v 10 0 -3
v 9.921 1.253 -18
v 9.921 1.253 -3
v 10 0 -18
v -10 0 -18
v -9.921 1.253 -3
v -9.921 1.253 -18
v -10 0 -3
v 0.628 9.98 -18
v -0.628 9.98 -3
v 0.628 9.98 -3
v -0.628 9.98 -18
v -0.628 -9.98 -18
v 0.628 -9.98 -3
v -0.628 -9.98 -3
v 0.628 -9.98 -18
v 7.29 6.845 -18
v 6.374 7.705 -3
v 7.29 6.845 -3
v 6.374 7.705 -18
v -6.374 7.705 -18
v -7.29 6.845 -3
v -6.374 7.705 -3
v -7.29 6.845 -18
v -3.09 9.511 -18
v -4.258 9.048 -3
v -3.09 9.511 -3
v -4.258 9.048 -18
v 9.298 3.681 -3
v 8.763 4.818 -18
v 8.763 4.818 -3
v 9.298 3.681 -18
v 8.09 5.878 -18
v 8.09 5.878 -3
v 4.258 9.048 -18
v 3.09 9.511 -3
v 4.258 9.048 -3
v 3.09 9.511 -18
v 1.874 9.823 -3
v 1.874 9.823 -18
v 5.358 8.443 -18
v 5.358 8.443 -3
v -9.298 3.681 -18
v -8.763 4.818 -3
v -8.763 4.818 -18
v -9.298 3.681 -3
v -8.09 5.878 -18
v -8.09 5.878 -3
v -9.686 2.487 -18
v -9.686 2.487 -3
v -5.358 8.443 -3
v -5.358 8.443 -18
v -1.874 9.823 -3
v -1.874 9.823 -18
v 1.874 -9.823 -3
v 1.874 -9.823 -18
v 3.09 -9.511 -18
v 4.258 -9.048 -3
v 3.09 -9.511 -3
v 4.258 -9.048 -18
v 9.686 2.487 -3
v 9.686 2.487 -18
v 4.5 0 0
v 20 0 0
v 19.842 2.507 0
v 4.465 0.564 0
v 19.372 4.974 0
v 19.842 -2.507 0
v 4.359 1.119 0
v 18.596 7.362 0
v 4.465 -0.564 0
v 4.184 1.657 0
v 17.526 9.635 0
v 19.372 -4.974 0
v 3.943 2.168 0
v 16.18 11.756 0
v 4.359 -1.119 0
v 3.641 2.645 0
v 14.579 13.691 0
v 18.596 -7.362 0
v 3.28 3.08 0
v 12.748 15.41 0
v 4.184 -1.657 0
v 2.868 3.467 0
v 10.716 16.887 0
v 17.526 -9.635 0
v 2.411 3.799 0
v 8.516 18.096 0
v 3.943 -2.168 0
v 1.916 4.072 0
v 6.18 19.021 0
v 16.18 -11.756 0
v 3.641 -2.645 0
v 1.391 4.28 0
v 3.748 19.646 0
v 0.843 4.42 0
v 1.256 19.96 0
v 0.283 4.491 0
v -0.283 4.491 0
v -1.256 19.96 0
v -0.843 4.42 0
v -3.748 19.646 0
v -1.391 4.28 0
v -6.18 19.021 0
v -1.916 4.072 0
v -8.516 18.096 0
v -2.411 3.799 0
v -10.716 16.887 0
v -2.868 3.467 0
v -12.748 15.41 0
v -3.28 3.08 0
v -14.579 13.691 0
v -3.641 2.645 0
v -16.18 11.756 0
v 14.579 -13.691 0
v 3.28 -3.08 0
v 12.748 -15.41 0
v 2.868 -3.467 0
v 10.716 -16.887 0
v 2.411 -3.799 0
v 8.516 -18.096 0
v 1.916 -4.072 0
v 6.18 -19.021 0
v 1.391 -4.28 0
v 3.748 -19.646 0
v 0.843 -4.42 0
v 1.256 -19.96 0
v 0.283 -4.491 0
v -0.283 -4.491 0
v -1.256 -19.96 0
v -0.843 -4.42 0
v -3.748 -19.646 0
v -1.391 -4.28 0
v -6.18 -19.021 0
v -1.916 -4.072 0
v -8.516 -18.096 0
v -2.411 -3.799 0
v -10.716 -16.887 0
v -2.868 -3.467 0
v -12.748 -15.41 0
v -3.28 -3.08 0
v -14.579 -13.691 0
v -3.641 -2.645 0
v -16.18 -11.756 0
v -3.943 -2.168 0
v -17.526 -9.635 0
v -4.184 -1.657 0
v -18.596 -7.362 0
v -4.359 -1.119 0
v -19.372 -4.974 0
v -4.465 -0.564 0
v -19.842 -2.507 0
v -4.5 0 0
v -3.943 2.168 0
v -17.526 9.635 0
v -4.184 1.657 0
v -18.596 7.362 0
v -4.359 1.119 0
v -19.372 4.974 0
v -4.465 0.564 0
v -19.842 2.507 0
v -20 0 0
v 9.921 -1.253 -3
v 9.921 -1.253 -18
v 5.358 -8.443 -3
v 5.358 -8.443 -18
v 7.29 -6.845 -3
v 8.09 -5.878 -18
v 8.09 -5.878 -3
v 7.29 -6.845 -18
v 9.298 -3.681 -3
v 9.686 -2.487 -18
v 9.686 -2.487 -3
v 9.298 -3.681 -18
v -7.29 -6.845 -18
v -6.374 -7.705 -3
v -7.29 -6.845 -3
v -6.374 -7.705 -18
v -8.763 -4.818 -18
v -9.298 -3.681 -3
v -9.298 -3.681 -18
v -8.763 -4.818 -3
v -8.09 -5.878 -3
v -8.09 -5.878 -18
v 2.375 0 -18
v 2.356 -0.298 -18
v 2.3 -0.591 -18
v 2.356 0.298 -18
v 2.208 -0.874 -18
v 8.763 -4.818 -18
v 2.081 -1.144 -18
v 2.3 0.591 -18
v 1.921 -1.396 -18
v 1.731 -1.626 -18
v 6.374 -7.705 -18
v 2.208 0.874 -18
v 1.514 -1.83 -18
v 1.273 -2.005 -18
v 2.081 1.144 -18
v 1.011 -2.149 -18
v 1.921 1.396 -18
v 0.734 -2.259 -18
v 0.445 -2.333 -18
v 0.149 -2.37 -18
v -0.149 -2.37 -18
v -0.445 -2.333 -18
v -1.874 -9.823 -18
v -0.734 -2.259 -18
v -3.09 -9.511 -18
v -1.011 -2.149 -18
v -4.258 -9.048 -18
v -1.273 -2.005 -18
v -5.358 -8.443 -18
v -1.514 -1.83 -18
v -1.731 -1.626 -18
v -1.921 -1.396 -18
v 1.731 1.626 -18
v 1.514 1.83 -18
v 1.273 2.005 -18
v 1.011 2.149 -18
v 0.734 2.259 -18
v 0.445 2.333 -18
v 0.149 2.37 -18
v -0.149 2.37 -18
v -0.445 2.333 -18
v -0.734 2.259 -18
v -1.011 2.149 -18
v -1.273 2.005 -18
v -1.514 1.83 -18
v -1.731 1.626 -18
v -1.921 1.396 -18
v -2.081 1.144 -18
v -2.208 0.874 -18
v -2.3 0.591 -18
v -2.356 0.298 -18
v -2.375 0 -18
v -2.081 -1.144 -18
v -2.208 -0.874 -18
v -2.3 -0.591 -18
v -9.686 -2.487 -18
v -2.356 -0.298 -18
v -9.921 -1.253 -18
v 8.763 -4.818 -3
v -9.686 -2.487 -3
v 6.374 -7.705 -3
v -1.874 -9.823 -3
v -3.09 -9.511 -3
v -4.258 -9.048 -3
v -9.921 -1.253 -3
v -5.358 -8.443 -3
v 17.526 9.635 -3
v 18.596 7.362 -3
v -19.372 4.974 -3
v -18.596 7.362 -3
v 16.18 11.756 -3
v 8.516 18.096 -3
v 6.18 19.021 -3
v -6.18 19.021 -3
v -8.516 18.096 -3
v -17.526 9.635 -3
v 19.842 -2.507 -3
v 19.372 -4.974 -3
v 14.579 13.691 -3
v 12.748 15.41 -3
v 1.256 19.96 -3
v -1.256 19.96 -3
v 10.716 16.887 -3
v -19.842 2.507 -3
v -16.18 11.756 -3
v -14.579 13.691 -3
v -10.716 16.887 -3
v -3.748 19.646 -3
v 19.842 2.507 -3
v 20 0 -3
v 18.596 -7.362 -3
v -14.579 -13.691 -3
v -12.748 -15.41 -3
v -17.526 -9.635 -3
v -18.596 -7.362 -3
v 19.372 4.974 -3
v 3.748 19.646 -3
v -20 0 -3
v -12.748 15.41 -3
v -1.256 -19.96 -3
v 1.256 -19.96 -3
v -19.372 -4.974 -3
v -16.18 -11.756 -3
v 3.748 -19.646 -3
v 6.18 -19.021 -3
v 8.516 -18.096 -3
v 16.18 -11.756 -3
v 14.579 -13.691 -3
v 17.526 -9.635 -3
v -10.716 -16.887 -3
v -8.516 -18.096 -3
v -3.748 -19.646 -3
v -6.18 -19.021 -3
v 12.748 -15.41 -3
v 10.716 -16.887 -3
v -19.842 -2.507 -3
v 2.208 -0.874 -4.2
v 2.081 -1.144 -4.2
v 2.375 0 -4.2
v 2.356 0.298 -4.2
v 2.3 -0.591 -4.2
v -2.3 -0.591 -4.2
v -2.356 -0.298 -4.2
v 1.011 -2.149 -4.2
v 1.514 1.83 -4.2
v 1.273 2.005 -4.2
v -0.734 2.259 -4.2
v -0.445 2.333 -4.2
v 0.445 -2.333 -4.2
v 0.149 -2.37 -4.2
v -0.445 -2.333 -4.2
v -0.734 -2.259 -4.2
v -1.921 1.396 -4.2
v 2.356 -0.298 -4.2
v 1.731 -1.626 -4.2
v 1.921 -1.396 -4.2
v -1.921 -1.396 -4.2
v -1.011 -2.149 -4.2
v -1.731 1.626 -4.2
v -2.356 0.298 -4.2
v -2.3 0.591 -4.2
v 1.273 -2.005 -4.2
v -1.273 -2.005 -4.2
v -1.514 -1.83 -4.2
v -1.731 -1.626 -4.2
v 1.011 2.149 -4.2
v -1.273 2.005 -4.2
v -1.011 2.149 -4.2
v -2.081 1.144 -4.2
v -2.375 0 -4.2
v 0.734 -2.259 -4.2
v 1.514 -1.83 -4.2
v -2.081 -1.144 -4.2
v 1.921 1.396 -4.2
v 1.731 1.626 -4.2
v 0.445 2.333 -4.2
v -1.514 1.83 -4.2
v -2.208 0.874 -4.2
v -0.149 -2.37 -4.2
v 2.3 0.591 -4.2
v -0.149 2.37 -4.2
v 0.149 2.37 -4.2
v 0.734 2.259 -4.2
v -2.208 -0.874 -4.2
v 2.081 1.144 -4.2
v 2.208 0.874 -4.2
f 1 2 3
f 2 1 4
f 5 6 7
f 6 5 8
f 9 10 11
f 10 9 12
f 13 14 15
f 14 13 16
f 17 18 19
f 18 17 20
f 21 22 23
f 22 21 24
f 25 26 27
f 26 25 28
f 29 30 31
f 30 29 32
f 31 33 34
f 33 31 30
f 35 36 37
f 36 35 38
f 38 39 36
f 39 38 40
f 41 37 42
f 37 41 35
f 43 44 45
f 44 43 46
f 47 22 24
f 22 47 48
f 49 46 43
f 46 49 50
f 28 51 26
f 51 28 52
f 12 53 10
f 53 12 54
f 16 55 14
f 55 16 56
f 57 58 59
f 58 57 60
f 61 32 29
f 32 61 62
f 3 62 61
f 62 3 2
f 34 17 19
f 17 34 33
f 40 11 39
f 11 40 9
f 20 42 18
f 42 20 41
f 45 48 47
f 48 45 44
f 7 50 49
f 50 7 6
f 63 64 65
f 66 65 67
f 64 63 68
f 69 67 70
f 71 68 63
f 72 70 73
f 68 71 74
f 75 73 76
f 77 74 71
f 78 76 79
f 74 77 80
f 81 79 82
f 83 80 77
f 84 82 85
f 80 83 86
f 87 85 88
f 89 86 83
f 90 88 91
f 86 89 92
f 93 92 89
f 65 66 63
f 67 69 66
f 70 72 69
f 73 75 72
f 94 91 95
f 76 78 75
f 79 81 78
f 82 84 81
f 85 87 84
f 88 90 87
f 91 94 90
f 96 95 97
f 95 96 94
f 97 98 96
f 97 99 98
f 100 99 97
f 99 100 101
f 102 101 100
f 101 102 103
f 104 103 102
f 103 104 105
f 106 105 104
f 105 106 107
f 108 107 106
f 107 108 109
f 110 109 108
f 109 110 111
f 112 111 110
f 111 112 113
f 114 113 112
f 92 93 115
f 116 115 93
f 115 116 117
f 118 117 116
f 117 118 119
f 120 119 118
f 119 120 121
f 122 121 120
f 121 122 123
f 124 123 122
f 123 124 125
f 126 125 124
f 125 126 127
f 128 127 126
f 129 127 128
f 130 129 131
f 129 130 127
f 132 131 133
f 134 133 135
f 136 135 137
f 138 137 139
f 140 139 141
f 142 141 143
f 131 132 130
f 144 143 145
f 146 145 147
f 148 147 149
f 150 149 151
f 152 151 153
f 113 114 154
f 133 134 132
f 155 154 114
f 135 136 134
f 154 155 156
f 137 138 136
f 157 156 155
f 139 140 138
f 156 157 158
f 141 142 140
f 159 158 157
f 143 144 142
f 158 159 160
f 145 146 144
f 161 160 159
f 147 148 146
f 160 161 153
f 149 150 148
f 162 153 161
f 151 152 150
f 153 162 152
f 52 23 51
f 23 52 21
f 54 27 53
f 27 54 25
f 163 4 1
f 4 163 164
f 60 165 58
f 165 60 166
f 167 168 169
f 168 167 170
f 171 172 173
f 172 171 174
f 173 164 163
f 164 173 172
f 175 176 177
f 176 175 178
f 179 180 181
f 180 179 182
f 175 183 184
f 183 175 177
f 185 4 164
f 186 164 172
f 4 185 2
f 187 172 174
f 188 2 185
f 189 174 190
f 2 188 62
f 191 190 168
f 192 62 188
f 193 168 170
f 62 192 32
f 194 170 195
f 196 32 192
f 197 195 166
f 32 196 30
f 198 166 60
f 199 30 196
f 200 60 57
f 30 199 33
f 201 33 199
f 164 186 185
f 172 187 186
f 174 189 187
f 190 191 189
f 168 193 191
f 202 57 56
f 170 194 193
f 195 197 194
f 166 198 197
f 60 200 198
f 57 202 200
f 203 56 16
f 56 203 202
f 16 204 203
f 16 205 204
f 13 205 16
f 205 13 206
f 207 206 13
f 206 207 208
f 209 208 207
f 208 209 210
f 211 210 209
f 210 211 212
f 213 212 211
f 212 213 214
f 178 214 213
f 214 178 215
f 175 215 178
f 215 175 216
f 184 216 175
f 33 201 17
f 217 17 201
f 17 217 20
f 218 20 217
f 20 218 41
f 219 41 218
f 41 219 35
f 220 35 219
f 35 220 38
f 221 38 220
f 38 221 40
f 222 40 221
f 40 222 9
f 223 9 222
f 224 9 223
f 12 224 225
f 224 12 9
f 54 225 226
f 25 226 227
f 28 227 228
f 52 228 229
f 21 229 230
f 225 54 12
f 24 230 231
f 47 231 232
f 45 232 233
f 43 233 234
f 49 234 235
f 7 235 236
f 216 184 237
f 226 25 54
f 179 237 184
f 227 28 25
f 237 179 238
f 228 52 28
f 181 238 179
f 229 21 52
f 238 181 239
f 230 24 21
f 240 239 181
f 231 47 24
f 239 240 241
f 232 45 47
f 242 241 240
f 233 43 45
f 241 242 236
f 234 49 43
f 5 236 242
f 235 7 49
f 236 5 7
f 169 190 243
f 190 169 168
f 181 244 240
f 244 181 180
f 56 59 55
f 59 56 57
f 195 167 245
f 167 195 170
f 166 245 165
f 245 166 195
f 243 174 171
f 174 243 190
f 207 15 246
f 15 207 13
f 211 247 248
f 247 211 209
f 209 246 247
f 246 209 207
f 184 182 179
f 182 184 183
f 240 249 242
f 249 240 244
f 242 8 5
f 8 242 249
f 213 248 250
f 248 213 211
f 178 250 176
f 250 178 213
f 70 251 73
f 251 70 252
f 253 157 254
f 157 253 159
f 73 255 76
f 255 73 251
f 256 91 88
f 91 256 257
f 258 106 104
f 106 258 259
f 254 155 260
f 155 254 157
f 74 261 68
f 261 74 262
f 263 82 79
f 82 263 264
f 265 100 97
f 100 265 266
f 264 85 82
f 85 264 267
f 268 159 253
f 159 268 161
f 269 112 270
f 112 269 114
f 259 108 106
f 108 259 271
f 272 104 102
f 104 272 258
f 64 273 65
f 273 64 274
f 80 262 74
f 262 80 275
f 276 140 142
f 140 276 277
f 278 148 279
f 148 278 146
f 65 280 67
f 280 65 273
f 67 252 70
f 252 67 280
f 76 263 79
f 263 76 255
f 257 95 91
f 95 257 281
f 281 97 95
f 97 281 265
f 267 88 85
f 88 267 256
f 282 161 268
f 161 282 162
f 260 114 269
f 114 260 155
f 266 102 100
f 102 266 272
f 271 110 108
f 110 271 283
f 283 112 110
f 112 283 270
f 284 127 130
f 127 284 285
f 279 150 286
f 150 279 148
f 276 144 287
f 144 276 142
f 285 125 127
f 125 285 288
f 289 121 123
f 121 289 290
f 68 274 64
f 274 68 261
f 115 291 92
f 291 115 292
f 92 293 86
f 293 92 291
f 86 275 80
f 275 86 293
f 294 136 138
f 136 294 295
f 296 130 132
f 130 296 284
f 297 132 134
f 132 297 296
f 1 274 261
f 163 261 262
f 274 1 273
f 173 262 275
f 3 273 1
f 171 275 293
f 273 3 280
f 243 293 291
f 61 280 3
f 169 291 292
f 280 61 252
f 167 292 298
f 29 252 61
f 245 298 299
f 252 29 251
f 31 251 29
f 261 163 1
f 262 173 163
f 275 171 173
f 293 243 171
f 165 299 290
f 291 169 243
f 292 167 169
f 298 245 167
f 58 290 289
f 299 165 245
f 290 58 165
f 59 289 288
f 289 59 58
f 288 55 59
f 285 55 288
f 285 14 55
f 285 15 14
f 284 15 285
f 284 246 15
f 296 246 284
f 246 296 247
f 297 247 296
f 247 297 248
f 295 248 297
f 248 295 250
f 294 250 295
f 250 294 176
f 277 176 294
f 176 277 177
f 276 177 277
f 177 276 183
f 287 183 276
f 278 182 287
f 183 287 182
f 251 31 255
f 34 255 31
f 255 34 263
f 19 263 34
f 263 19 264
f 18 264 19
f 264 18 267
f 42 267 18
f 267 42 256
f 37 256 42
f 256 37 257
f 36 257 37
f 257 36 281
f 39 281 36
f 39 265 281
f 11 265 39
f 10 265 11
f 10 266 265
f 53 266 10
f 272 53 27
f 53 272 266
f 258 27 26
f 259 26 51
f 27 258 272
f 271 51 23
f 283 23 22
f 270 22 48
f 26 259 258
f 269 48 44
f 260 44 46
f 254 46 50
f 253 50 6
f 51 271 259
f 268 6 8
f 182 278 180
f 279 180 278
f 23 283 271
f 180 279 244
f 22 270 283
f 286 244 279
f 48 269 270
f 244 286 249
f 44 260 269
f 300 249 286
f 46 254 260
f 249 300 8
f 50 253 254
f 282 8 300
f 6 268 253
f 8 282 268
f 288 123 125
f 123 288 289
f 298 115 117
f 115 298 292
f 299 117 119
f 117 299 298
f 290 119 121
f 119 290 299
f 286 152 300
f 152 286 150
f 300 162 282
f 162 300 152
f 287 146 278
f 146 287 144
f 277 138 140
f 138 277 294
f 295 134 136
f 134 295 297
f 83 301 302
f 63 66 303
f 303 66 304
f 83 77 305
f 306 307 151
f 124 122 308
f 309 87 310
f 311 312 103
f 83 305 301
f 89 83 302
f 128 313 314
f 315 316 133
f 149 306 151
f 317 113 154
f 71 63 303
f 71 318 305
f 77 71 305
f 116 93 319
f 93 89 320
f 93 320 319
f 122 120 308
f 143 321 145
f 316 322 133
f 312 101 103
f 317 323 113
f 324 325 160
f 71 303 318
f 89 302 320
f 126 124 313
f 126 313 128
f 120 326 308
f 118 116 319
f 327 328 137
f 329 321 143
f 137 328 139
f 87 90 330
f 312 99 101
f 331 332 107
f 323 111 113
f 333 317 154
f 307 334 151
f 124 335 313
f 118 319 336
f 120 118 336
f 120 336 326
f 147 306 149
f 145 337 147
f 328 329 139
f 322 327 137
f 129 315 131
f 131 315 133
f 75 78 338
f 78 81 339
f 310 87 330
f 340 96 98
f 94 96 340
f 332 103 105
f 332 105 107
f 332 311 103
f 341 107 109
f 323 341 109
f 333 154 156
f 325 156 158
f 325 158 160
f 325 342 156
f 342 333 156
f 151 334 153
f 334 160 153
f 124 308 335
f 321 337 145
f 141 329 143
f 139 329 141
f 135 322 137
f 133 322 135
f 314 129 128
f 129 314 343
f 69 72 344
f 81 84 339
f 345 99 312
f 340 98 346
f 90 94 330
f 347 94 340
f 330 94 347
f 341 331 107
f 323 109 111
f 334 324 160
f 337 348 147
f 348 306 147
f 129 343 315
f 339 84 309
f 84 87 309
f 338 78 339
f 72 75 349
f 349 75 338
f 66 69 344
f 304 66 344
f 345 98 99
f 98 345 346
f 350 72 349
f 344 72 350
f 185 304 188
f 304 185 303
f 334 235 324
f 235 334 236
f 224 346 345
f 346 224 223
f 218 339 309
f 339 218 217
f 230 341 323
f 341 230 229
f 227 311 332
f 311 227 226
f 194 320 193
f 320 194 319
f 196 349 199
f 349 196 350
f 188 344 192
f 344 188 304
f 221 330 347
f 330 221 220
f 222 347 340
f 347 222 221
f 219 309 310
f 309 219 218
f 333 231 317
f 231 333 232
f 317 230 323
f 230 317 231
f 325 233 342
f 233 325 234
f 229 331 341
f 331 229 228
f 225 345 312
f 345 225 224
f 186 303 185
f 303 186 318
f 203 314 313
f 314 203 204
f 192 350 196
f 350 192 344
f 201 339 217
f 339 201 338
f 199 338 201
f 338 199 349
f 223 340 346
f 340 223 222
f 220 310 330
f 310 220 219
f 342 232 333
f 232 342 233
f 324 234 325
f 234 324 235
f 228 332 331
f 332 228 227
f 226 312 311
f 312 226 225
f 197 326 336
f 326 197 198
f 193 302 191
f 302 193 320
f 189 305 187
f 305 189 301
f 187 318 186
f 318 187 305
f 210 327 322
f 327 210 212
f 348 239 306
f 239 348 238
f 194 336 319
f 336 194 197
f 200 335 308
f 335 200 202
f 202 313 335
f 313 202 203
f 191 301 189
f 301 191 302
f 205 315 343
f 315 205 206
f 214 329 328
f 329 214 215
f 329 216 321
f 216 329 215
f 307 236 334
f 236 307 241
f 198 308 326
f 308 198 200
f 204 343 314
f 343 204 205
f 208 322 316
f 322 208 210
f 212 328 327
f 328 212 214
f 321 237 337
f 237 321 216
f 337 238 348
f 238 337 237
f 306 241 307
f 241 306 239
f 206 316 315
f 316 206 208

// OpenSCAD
$fn = 50;


difference() {
	union() {
		translate(v = [0, 0, -18.0000000000]) {
			cylinder(h = 18, r = 10.0000000000);
		}
		translate(v = [0, 0, -3.0000000000]) {
			cylinder(h = 3, r = 20.0000000000);
		}
	}
	union() {
		translate(v = [0, 0, 0]) {
			rotate(a = [0, 0, 0]) {
				difference() {
					union() {
						#translate(v = [0, 0, -18.0000000000]) {
							cylinder(h = 18, r = 2.2500000000);
						}
						#translate(v = [0, 0, -4.2000000000]) {
							cylinder(h = 4.2000000000, r1 = 2.3750000000, r2 = 4.5000000000);
						}
						#translate(v = [0, 0, -18.0000000000]) {
							cylinder(h = 18, r = 2.3750000000);
						}
						#translate(v = [0, 0, -18.0000000000]) {
							cylinder(h = 18, r = 2.2500000000);
						}
					}
					union();
				}
			}
		}
	}
}
